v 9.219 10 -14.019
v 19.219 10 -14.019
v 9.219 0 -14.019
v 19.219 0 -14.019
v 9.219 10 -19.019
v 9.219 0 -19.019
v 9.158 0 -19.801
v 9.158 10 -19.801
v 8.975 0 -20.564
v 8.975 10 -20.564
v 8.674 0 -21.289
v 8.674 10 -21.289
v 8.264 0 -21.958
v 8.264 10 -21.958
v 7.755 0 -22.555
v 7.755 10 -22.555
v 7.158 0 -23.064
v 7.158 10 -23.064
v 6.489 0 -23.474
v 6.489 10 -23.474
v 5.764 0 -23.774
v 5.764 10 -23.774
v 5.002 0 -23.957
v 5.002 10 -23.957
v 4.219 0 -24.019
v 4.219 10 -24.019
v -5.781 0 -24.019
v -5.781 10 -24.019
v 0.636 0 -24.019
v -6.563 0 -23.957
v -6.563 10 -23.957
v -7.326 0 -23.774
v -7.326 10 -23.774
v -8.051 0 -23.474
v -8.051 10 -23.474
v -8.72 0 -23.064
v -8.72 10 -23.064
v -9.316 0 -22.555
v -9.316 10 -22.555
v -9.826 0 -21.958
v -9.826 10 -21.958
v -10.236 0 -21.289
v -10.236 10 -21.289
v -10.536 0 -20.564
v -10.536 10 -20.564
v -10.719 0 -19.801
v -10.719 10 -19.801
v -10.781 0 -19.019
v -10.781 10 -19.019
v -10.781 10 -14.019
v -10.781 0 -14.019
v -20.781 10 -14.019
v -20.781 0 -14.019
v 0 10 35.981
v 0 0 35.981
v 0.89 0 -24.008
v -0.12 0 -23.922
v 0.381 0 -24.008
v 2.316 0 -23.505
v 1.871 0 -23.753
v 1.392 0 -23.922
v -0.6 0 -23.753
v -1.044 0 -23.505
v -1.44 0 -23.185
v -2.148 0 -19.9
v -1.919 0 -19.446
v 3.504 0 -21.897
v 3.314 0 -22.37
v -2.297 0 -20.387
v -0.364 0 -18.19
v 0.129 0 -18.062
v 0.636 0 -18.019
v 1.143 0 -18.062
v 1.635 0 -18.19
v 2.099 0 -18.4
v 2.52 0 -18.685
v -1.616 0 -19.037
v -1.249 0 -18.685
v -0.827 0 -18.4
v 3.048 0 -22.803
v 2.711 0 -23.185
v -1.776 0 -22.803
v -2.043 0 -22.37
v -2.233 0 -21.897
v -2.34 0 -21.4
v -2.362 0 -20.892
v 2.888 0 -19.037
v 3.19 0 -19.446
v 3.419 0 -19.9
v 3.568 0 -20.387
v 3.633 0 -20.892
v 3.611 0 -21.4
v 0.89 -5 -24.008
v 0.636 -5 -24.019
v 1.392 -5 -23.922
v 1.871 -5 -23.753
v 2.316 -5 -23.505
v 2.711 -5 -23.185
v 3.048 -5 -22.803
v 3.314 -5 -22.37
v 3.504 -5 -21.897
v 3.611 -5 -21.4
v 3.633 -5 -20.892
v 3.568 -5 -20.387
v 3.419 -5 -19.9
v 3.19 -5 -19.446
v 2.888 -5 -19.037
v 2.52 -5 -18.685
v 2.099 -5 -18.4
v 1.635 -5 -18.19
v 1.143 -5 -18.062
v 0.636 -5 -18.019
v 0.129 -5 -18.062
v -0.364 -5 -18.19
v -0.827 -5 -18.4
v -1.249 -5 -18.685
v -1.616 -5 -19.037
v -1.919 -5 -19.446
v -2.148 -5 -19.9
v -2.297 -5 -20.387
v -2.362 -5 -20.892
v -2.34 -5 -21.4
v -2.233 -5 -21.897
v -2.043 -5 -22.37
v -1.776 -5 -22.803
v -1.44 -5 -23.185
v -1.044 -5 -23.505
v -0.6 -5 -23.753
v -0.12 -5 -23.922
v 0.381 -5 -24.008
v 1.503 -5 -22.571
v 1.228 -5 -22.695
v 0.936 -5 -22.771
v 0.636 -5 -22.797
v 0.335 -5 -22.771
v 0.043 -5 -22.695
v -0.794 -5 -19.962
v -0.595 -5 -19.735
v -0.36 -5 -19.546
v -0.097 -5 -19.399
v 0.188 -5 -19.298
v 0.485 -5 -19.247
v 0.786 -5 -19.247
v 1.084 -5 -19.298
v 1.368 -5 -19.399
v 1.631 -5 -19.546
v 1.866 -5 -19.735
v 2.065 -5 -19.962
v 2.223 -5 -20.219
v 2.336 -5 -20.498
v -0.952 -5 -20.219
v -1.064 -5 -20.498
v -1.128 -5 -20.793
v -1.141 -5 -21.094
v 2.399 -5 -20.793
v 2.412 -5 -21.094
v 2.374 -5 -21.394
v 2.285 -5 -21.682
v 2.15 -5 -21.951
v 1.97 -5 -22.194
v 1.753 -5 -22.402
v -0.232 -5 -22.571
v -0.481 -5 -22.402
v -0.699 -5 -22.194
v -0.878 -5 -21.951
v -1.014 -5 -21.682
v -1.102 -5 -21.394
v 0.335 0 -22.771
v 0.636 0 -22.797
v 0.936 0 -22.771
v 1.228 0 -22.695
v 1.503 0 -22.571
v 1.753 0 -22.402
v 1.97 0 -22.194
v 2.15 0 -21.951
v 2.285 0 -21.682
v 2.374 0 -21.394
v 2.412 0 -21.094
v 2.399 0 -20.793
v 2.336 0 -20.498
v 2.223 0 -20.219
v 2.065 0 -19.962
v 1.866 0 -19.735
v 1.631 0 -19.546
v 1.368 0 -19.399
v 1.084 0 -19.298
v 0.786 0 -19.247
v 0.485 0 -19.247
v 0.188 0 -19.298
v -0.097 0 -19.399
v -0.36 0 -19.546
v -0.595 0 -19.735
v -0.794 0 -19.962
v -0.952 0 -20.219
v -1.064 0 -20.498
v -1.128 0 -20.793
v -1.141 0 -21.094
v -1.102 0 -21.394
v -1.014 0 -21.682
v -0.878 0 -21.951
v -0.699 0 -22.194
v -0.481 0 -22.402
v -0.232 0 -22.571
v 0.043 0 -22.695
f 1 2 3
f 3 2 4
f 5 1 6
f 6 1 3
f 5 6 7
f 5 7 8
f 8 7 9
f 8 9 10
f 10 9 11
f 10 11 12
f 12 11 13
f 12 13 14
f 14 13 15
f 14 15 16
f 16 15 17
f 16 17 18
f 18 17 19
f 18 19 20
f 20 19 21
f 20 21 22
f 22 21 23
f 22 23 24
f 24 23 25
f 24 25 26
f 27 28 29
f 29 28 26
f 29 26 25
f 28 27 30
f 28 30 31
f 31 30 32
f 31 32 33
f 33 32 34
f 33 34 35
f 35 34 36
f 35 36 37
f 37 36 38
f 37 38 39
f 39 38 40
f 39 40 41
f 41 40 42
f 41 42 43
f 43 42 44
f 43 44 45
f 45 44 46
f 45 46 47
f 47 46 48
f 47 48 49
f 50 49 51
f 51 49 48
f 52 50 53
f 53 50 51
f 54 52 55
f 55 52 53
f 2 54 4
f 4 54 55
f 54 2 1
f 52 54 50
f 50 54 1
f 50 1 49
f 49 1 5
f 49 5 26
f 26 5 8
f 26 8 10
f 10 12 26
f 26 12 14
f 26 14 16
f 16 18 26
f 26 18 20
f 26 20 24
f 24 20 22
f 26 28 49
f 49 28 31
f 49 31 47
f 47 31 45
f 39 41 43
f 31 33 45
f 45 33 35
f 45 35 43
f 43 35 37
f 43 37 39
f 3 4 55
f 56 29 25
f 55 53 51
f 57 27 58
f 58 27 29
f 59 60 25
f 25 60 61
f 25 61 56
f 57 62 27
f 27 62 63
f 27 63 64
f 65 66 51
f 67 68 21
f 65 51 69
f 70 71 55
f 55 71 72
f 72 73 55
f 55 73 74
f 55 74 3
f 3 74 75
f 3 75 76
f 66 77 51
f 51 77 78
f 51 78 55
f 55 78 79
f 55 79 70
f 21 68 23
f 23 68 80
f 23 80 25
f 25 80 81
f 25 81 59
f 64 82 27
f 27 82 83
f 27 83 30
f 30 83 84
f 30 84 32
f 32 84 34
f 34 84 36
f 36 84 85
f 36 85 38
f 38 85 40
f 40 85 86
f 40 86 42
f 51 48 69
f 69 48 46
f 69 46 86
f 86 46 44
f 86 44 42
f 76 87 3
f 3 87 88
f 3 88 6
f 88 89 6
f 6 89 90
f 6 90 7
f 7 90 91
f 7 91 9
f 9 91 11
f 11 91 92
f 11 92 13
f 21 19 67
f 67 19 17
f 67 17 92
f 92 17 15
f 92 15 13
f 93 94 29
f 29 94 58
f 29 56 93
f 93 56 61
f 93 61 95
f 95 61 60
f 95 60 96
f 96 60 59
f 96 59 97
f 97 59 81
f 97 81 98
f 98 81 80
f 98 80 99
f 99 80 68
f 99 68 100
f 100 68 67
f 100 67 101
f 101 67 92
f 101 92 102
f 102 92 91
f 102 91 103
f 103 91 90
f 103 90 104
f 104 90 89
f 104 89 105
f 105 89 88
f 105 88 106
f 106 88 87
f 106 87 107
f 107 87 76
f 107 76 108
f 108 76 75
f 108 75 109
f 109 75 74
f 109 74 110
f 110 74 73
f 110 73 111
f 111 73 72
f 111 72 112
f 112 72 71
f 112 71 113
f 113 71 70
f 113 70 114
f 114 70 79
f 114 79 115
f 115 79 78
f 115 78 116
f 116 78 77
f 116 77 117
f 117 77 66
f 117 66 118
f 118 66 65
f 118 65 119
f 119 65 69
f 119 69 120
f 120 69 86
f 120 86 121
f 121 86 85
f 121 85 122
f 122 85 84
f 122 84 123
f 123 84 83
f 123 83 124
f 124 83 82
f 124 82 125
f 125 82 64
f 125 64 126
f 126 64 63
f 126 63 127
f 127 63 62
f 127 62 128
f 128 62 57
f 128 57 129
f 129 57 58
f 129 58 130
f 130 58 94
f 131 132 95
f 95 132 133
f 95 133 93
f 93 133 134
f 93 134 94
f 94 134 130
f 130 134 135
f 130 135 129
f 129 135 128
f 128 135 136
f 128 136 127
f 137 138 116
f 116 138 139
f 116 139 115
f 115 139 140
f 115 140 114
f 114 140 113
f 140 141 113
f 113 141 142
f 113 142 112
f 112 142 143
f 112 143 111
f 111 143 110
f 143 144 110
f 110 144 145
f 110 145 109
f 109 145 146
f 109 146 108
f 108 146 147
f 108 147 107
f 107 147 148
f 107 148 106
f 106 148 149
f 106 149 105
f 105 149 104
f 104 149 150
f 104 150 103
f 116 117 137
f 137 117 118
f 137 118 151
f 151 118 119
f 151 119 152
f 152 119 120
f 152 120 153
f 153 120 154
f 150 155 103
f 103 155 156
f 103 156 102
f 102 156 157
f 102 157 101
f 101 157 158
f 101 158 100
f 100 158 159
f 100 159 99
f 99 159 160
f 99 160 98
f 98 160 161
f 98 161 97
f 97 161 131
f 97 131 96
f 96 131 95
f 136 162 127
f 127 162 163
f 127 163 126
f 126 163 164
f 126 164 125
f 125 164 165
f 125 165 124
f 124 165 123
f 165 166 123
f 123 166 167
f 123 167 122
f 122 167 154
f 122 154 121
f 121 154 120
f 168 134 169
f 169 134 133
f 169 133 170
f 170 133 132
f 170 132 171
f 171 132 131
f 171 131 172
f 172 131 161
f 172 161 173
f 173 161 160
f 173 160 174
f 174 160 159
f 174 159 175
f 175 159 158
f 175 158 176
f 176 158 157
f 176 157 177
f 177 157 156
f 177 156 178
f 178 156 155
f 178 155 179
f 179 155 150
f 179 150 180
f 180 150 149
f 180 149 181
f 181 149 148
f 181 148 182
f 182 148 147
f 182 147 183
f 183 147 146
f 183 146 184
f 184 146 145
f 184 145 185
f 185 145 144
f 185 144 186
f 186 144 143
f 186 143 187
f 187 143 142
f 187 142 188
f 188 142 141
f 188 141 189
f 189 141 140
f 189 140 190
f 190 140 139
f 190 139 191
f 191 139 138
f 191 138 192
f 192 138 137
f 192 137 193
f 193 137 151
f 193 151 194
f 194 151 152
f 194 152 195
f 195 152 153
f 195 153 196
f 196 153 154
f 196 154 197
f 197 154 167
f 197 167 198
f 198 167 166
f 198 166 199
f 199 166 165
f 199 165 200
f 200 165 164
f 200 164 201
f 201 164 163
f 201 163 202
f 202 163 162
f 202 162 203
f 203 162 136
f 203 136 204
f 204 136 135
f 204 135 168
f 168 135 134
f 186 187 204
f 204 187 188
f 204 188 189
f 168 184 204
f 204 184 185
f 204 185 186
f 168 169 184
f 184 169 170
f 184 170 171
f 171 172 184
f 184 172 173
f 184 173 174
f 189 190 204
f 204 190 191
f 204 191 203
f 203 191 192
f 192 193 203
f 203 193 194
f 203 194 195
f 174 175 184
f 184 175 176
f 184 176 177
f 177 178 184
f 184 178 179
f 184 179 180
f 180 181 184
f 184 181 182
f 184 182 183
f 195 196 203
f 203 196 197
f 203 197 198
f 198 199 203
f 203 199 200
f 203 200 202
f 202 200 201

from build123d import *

# Parameters (mm, degrees)
BOSS_EXTRUDE1_DEPTH = 10
SKETCH2_R           = 3
BOSS_EXTRUDE2_DEPTH = 5
SKETCH3_R           = 1.778
CUT_EXTRUDE1_DEPTH  = 5


with BuildPart() as part:
    # Sketch1 → Boss-Extrude1 (new body)
    with BuildSketch(Plane(origin=(0, 0, 0), x_dir=(1, 0, 0), z_dir=(0, 1, 0))):
        with BuildLine():
            Line((-5.780656579, 24.018987342), (4.219343421, 24.018987342))
            ThreePointArc((4.219343421, 24.018987342), (7.754877327, 22.554521248), (9.219343421, 19.018987342))
            Line((9.219343421, 19.018987342), (9.219343421, 14.018987342))
            Line((9.219343421, 14.018987342), (19.219343421, 14.018987342))
            Line((19.219343421, 14.018987342), (0, -35.981012658))
            Line((0, -35.981012658), (-20.780656579, 14.018987342))
            Line((-20.780656579, 14.018987342), (-10.780656579, 14.018987342))
            Line((-10.780656579, 14.018987342), (-10.780656579, 19.018987342))
            ThreePointArc((-10.780656579, 19.018987342), (-9.316190485, 22.554521248), (-5.780656579, 24.018987342))
        make_face()
    extrude(amount=BOSS_EXTRUDE1_DEPTH)

    # Sketch2 → Boss-Extrude2 (add)
    with BuildSketch(Plane.XZ):
        with Locations((0.635595912, -21.018987342)):
            Circle(SKETCH2_R)
    extrude(amount=BOSS_EXTRUDE2_DEPTH)

    # Sketch3 → Cut-Extrude1 (cut)
    with BuildSketch(Plane.XZ.offset(5)):
        with Locations((0.635595912, -21.018987342)):
            Circle(SKETCH3_R)
    extrude(amount=-CUT_EXTRUDE1_DEPTH, mode=Mode.SUBTRACT)


solid = part.part
